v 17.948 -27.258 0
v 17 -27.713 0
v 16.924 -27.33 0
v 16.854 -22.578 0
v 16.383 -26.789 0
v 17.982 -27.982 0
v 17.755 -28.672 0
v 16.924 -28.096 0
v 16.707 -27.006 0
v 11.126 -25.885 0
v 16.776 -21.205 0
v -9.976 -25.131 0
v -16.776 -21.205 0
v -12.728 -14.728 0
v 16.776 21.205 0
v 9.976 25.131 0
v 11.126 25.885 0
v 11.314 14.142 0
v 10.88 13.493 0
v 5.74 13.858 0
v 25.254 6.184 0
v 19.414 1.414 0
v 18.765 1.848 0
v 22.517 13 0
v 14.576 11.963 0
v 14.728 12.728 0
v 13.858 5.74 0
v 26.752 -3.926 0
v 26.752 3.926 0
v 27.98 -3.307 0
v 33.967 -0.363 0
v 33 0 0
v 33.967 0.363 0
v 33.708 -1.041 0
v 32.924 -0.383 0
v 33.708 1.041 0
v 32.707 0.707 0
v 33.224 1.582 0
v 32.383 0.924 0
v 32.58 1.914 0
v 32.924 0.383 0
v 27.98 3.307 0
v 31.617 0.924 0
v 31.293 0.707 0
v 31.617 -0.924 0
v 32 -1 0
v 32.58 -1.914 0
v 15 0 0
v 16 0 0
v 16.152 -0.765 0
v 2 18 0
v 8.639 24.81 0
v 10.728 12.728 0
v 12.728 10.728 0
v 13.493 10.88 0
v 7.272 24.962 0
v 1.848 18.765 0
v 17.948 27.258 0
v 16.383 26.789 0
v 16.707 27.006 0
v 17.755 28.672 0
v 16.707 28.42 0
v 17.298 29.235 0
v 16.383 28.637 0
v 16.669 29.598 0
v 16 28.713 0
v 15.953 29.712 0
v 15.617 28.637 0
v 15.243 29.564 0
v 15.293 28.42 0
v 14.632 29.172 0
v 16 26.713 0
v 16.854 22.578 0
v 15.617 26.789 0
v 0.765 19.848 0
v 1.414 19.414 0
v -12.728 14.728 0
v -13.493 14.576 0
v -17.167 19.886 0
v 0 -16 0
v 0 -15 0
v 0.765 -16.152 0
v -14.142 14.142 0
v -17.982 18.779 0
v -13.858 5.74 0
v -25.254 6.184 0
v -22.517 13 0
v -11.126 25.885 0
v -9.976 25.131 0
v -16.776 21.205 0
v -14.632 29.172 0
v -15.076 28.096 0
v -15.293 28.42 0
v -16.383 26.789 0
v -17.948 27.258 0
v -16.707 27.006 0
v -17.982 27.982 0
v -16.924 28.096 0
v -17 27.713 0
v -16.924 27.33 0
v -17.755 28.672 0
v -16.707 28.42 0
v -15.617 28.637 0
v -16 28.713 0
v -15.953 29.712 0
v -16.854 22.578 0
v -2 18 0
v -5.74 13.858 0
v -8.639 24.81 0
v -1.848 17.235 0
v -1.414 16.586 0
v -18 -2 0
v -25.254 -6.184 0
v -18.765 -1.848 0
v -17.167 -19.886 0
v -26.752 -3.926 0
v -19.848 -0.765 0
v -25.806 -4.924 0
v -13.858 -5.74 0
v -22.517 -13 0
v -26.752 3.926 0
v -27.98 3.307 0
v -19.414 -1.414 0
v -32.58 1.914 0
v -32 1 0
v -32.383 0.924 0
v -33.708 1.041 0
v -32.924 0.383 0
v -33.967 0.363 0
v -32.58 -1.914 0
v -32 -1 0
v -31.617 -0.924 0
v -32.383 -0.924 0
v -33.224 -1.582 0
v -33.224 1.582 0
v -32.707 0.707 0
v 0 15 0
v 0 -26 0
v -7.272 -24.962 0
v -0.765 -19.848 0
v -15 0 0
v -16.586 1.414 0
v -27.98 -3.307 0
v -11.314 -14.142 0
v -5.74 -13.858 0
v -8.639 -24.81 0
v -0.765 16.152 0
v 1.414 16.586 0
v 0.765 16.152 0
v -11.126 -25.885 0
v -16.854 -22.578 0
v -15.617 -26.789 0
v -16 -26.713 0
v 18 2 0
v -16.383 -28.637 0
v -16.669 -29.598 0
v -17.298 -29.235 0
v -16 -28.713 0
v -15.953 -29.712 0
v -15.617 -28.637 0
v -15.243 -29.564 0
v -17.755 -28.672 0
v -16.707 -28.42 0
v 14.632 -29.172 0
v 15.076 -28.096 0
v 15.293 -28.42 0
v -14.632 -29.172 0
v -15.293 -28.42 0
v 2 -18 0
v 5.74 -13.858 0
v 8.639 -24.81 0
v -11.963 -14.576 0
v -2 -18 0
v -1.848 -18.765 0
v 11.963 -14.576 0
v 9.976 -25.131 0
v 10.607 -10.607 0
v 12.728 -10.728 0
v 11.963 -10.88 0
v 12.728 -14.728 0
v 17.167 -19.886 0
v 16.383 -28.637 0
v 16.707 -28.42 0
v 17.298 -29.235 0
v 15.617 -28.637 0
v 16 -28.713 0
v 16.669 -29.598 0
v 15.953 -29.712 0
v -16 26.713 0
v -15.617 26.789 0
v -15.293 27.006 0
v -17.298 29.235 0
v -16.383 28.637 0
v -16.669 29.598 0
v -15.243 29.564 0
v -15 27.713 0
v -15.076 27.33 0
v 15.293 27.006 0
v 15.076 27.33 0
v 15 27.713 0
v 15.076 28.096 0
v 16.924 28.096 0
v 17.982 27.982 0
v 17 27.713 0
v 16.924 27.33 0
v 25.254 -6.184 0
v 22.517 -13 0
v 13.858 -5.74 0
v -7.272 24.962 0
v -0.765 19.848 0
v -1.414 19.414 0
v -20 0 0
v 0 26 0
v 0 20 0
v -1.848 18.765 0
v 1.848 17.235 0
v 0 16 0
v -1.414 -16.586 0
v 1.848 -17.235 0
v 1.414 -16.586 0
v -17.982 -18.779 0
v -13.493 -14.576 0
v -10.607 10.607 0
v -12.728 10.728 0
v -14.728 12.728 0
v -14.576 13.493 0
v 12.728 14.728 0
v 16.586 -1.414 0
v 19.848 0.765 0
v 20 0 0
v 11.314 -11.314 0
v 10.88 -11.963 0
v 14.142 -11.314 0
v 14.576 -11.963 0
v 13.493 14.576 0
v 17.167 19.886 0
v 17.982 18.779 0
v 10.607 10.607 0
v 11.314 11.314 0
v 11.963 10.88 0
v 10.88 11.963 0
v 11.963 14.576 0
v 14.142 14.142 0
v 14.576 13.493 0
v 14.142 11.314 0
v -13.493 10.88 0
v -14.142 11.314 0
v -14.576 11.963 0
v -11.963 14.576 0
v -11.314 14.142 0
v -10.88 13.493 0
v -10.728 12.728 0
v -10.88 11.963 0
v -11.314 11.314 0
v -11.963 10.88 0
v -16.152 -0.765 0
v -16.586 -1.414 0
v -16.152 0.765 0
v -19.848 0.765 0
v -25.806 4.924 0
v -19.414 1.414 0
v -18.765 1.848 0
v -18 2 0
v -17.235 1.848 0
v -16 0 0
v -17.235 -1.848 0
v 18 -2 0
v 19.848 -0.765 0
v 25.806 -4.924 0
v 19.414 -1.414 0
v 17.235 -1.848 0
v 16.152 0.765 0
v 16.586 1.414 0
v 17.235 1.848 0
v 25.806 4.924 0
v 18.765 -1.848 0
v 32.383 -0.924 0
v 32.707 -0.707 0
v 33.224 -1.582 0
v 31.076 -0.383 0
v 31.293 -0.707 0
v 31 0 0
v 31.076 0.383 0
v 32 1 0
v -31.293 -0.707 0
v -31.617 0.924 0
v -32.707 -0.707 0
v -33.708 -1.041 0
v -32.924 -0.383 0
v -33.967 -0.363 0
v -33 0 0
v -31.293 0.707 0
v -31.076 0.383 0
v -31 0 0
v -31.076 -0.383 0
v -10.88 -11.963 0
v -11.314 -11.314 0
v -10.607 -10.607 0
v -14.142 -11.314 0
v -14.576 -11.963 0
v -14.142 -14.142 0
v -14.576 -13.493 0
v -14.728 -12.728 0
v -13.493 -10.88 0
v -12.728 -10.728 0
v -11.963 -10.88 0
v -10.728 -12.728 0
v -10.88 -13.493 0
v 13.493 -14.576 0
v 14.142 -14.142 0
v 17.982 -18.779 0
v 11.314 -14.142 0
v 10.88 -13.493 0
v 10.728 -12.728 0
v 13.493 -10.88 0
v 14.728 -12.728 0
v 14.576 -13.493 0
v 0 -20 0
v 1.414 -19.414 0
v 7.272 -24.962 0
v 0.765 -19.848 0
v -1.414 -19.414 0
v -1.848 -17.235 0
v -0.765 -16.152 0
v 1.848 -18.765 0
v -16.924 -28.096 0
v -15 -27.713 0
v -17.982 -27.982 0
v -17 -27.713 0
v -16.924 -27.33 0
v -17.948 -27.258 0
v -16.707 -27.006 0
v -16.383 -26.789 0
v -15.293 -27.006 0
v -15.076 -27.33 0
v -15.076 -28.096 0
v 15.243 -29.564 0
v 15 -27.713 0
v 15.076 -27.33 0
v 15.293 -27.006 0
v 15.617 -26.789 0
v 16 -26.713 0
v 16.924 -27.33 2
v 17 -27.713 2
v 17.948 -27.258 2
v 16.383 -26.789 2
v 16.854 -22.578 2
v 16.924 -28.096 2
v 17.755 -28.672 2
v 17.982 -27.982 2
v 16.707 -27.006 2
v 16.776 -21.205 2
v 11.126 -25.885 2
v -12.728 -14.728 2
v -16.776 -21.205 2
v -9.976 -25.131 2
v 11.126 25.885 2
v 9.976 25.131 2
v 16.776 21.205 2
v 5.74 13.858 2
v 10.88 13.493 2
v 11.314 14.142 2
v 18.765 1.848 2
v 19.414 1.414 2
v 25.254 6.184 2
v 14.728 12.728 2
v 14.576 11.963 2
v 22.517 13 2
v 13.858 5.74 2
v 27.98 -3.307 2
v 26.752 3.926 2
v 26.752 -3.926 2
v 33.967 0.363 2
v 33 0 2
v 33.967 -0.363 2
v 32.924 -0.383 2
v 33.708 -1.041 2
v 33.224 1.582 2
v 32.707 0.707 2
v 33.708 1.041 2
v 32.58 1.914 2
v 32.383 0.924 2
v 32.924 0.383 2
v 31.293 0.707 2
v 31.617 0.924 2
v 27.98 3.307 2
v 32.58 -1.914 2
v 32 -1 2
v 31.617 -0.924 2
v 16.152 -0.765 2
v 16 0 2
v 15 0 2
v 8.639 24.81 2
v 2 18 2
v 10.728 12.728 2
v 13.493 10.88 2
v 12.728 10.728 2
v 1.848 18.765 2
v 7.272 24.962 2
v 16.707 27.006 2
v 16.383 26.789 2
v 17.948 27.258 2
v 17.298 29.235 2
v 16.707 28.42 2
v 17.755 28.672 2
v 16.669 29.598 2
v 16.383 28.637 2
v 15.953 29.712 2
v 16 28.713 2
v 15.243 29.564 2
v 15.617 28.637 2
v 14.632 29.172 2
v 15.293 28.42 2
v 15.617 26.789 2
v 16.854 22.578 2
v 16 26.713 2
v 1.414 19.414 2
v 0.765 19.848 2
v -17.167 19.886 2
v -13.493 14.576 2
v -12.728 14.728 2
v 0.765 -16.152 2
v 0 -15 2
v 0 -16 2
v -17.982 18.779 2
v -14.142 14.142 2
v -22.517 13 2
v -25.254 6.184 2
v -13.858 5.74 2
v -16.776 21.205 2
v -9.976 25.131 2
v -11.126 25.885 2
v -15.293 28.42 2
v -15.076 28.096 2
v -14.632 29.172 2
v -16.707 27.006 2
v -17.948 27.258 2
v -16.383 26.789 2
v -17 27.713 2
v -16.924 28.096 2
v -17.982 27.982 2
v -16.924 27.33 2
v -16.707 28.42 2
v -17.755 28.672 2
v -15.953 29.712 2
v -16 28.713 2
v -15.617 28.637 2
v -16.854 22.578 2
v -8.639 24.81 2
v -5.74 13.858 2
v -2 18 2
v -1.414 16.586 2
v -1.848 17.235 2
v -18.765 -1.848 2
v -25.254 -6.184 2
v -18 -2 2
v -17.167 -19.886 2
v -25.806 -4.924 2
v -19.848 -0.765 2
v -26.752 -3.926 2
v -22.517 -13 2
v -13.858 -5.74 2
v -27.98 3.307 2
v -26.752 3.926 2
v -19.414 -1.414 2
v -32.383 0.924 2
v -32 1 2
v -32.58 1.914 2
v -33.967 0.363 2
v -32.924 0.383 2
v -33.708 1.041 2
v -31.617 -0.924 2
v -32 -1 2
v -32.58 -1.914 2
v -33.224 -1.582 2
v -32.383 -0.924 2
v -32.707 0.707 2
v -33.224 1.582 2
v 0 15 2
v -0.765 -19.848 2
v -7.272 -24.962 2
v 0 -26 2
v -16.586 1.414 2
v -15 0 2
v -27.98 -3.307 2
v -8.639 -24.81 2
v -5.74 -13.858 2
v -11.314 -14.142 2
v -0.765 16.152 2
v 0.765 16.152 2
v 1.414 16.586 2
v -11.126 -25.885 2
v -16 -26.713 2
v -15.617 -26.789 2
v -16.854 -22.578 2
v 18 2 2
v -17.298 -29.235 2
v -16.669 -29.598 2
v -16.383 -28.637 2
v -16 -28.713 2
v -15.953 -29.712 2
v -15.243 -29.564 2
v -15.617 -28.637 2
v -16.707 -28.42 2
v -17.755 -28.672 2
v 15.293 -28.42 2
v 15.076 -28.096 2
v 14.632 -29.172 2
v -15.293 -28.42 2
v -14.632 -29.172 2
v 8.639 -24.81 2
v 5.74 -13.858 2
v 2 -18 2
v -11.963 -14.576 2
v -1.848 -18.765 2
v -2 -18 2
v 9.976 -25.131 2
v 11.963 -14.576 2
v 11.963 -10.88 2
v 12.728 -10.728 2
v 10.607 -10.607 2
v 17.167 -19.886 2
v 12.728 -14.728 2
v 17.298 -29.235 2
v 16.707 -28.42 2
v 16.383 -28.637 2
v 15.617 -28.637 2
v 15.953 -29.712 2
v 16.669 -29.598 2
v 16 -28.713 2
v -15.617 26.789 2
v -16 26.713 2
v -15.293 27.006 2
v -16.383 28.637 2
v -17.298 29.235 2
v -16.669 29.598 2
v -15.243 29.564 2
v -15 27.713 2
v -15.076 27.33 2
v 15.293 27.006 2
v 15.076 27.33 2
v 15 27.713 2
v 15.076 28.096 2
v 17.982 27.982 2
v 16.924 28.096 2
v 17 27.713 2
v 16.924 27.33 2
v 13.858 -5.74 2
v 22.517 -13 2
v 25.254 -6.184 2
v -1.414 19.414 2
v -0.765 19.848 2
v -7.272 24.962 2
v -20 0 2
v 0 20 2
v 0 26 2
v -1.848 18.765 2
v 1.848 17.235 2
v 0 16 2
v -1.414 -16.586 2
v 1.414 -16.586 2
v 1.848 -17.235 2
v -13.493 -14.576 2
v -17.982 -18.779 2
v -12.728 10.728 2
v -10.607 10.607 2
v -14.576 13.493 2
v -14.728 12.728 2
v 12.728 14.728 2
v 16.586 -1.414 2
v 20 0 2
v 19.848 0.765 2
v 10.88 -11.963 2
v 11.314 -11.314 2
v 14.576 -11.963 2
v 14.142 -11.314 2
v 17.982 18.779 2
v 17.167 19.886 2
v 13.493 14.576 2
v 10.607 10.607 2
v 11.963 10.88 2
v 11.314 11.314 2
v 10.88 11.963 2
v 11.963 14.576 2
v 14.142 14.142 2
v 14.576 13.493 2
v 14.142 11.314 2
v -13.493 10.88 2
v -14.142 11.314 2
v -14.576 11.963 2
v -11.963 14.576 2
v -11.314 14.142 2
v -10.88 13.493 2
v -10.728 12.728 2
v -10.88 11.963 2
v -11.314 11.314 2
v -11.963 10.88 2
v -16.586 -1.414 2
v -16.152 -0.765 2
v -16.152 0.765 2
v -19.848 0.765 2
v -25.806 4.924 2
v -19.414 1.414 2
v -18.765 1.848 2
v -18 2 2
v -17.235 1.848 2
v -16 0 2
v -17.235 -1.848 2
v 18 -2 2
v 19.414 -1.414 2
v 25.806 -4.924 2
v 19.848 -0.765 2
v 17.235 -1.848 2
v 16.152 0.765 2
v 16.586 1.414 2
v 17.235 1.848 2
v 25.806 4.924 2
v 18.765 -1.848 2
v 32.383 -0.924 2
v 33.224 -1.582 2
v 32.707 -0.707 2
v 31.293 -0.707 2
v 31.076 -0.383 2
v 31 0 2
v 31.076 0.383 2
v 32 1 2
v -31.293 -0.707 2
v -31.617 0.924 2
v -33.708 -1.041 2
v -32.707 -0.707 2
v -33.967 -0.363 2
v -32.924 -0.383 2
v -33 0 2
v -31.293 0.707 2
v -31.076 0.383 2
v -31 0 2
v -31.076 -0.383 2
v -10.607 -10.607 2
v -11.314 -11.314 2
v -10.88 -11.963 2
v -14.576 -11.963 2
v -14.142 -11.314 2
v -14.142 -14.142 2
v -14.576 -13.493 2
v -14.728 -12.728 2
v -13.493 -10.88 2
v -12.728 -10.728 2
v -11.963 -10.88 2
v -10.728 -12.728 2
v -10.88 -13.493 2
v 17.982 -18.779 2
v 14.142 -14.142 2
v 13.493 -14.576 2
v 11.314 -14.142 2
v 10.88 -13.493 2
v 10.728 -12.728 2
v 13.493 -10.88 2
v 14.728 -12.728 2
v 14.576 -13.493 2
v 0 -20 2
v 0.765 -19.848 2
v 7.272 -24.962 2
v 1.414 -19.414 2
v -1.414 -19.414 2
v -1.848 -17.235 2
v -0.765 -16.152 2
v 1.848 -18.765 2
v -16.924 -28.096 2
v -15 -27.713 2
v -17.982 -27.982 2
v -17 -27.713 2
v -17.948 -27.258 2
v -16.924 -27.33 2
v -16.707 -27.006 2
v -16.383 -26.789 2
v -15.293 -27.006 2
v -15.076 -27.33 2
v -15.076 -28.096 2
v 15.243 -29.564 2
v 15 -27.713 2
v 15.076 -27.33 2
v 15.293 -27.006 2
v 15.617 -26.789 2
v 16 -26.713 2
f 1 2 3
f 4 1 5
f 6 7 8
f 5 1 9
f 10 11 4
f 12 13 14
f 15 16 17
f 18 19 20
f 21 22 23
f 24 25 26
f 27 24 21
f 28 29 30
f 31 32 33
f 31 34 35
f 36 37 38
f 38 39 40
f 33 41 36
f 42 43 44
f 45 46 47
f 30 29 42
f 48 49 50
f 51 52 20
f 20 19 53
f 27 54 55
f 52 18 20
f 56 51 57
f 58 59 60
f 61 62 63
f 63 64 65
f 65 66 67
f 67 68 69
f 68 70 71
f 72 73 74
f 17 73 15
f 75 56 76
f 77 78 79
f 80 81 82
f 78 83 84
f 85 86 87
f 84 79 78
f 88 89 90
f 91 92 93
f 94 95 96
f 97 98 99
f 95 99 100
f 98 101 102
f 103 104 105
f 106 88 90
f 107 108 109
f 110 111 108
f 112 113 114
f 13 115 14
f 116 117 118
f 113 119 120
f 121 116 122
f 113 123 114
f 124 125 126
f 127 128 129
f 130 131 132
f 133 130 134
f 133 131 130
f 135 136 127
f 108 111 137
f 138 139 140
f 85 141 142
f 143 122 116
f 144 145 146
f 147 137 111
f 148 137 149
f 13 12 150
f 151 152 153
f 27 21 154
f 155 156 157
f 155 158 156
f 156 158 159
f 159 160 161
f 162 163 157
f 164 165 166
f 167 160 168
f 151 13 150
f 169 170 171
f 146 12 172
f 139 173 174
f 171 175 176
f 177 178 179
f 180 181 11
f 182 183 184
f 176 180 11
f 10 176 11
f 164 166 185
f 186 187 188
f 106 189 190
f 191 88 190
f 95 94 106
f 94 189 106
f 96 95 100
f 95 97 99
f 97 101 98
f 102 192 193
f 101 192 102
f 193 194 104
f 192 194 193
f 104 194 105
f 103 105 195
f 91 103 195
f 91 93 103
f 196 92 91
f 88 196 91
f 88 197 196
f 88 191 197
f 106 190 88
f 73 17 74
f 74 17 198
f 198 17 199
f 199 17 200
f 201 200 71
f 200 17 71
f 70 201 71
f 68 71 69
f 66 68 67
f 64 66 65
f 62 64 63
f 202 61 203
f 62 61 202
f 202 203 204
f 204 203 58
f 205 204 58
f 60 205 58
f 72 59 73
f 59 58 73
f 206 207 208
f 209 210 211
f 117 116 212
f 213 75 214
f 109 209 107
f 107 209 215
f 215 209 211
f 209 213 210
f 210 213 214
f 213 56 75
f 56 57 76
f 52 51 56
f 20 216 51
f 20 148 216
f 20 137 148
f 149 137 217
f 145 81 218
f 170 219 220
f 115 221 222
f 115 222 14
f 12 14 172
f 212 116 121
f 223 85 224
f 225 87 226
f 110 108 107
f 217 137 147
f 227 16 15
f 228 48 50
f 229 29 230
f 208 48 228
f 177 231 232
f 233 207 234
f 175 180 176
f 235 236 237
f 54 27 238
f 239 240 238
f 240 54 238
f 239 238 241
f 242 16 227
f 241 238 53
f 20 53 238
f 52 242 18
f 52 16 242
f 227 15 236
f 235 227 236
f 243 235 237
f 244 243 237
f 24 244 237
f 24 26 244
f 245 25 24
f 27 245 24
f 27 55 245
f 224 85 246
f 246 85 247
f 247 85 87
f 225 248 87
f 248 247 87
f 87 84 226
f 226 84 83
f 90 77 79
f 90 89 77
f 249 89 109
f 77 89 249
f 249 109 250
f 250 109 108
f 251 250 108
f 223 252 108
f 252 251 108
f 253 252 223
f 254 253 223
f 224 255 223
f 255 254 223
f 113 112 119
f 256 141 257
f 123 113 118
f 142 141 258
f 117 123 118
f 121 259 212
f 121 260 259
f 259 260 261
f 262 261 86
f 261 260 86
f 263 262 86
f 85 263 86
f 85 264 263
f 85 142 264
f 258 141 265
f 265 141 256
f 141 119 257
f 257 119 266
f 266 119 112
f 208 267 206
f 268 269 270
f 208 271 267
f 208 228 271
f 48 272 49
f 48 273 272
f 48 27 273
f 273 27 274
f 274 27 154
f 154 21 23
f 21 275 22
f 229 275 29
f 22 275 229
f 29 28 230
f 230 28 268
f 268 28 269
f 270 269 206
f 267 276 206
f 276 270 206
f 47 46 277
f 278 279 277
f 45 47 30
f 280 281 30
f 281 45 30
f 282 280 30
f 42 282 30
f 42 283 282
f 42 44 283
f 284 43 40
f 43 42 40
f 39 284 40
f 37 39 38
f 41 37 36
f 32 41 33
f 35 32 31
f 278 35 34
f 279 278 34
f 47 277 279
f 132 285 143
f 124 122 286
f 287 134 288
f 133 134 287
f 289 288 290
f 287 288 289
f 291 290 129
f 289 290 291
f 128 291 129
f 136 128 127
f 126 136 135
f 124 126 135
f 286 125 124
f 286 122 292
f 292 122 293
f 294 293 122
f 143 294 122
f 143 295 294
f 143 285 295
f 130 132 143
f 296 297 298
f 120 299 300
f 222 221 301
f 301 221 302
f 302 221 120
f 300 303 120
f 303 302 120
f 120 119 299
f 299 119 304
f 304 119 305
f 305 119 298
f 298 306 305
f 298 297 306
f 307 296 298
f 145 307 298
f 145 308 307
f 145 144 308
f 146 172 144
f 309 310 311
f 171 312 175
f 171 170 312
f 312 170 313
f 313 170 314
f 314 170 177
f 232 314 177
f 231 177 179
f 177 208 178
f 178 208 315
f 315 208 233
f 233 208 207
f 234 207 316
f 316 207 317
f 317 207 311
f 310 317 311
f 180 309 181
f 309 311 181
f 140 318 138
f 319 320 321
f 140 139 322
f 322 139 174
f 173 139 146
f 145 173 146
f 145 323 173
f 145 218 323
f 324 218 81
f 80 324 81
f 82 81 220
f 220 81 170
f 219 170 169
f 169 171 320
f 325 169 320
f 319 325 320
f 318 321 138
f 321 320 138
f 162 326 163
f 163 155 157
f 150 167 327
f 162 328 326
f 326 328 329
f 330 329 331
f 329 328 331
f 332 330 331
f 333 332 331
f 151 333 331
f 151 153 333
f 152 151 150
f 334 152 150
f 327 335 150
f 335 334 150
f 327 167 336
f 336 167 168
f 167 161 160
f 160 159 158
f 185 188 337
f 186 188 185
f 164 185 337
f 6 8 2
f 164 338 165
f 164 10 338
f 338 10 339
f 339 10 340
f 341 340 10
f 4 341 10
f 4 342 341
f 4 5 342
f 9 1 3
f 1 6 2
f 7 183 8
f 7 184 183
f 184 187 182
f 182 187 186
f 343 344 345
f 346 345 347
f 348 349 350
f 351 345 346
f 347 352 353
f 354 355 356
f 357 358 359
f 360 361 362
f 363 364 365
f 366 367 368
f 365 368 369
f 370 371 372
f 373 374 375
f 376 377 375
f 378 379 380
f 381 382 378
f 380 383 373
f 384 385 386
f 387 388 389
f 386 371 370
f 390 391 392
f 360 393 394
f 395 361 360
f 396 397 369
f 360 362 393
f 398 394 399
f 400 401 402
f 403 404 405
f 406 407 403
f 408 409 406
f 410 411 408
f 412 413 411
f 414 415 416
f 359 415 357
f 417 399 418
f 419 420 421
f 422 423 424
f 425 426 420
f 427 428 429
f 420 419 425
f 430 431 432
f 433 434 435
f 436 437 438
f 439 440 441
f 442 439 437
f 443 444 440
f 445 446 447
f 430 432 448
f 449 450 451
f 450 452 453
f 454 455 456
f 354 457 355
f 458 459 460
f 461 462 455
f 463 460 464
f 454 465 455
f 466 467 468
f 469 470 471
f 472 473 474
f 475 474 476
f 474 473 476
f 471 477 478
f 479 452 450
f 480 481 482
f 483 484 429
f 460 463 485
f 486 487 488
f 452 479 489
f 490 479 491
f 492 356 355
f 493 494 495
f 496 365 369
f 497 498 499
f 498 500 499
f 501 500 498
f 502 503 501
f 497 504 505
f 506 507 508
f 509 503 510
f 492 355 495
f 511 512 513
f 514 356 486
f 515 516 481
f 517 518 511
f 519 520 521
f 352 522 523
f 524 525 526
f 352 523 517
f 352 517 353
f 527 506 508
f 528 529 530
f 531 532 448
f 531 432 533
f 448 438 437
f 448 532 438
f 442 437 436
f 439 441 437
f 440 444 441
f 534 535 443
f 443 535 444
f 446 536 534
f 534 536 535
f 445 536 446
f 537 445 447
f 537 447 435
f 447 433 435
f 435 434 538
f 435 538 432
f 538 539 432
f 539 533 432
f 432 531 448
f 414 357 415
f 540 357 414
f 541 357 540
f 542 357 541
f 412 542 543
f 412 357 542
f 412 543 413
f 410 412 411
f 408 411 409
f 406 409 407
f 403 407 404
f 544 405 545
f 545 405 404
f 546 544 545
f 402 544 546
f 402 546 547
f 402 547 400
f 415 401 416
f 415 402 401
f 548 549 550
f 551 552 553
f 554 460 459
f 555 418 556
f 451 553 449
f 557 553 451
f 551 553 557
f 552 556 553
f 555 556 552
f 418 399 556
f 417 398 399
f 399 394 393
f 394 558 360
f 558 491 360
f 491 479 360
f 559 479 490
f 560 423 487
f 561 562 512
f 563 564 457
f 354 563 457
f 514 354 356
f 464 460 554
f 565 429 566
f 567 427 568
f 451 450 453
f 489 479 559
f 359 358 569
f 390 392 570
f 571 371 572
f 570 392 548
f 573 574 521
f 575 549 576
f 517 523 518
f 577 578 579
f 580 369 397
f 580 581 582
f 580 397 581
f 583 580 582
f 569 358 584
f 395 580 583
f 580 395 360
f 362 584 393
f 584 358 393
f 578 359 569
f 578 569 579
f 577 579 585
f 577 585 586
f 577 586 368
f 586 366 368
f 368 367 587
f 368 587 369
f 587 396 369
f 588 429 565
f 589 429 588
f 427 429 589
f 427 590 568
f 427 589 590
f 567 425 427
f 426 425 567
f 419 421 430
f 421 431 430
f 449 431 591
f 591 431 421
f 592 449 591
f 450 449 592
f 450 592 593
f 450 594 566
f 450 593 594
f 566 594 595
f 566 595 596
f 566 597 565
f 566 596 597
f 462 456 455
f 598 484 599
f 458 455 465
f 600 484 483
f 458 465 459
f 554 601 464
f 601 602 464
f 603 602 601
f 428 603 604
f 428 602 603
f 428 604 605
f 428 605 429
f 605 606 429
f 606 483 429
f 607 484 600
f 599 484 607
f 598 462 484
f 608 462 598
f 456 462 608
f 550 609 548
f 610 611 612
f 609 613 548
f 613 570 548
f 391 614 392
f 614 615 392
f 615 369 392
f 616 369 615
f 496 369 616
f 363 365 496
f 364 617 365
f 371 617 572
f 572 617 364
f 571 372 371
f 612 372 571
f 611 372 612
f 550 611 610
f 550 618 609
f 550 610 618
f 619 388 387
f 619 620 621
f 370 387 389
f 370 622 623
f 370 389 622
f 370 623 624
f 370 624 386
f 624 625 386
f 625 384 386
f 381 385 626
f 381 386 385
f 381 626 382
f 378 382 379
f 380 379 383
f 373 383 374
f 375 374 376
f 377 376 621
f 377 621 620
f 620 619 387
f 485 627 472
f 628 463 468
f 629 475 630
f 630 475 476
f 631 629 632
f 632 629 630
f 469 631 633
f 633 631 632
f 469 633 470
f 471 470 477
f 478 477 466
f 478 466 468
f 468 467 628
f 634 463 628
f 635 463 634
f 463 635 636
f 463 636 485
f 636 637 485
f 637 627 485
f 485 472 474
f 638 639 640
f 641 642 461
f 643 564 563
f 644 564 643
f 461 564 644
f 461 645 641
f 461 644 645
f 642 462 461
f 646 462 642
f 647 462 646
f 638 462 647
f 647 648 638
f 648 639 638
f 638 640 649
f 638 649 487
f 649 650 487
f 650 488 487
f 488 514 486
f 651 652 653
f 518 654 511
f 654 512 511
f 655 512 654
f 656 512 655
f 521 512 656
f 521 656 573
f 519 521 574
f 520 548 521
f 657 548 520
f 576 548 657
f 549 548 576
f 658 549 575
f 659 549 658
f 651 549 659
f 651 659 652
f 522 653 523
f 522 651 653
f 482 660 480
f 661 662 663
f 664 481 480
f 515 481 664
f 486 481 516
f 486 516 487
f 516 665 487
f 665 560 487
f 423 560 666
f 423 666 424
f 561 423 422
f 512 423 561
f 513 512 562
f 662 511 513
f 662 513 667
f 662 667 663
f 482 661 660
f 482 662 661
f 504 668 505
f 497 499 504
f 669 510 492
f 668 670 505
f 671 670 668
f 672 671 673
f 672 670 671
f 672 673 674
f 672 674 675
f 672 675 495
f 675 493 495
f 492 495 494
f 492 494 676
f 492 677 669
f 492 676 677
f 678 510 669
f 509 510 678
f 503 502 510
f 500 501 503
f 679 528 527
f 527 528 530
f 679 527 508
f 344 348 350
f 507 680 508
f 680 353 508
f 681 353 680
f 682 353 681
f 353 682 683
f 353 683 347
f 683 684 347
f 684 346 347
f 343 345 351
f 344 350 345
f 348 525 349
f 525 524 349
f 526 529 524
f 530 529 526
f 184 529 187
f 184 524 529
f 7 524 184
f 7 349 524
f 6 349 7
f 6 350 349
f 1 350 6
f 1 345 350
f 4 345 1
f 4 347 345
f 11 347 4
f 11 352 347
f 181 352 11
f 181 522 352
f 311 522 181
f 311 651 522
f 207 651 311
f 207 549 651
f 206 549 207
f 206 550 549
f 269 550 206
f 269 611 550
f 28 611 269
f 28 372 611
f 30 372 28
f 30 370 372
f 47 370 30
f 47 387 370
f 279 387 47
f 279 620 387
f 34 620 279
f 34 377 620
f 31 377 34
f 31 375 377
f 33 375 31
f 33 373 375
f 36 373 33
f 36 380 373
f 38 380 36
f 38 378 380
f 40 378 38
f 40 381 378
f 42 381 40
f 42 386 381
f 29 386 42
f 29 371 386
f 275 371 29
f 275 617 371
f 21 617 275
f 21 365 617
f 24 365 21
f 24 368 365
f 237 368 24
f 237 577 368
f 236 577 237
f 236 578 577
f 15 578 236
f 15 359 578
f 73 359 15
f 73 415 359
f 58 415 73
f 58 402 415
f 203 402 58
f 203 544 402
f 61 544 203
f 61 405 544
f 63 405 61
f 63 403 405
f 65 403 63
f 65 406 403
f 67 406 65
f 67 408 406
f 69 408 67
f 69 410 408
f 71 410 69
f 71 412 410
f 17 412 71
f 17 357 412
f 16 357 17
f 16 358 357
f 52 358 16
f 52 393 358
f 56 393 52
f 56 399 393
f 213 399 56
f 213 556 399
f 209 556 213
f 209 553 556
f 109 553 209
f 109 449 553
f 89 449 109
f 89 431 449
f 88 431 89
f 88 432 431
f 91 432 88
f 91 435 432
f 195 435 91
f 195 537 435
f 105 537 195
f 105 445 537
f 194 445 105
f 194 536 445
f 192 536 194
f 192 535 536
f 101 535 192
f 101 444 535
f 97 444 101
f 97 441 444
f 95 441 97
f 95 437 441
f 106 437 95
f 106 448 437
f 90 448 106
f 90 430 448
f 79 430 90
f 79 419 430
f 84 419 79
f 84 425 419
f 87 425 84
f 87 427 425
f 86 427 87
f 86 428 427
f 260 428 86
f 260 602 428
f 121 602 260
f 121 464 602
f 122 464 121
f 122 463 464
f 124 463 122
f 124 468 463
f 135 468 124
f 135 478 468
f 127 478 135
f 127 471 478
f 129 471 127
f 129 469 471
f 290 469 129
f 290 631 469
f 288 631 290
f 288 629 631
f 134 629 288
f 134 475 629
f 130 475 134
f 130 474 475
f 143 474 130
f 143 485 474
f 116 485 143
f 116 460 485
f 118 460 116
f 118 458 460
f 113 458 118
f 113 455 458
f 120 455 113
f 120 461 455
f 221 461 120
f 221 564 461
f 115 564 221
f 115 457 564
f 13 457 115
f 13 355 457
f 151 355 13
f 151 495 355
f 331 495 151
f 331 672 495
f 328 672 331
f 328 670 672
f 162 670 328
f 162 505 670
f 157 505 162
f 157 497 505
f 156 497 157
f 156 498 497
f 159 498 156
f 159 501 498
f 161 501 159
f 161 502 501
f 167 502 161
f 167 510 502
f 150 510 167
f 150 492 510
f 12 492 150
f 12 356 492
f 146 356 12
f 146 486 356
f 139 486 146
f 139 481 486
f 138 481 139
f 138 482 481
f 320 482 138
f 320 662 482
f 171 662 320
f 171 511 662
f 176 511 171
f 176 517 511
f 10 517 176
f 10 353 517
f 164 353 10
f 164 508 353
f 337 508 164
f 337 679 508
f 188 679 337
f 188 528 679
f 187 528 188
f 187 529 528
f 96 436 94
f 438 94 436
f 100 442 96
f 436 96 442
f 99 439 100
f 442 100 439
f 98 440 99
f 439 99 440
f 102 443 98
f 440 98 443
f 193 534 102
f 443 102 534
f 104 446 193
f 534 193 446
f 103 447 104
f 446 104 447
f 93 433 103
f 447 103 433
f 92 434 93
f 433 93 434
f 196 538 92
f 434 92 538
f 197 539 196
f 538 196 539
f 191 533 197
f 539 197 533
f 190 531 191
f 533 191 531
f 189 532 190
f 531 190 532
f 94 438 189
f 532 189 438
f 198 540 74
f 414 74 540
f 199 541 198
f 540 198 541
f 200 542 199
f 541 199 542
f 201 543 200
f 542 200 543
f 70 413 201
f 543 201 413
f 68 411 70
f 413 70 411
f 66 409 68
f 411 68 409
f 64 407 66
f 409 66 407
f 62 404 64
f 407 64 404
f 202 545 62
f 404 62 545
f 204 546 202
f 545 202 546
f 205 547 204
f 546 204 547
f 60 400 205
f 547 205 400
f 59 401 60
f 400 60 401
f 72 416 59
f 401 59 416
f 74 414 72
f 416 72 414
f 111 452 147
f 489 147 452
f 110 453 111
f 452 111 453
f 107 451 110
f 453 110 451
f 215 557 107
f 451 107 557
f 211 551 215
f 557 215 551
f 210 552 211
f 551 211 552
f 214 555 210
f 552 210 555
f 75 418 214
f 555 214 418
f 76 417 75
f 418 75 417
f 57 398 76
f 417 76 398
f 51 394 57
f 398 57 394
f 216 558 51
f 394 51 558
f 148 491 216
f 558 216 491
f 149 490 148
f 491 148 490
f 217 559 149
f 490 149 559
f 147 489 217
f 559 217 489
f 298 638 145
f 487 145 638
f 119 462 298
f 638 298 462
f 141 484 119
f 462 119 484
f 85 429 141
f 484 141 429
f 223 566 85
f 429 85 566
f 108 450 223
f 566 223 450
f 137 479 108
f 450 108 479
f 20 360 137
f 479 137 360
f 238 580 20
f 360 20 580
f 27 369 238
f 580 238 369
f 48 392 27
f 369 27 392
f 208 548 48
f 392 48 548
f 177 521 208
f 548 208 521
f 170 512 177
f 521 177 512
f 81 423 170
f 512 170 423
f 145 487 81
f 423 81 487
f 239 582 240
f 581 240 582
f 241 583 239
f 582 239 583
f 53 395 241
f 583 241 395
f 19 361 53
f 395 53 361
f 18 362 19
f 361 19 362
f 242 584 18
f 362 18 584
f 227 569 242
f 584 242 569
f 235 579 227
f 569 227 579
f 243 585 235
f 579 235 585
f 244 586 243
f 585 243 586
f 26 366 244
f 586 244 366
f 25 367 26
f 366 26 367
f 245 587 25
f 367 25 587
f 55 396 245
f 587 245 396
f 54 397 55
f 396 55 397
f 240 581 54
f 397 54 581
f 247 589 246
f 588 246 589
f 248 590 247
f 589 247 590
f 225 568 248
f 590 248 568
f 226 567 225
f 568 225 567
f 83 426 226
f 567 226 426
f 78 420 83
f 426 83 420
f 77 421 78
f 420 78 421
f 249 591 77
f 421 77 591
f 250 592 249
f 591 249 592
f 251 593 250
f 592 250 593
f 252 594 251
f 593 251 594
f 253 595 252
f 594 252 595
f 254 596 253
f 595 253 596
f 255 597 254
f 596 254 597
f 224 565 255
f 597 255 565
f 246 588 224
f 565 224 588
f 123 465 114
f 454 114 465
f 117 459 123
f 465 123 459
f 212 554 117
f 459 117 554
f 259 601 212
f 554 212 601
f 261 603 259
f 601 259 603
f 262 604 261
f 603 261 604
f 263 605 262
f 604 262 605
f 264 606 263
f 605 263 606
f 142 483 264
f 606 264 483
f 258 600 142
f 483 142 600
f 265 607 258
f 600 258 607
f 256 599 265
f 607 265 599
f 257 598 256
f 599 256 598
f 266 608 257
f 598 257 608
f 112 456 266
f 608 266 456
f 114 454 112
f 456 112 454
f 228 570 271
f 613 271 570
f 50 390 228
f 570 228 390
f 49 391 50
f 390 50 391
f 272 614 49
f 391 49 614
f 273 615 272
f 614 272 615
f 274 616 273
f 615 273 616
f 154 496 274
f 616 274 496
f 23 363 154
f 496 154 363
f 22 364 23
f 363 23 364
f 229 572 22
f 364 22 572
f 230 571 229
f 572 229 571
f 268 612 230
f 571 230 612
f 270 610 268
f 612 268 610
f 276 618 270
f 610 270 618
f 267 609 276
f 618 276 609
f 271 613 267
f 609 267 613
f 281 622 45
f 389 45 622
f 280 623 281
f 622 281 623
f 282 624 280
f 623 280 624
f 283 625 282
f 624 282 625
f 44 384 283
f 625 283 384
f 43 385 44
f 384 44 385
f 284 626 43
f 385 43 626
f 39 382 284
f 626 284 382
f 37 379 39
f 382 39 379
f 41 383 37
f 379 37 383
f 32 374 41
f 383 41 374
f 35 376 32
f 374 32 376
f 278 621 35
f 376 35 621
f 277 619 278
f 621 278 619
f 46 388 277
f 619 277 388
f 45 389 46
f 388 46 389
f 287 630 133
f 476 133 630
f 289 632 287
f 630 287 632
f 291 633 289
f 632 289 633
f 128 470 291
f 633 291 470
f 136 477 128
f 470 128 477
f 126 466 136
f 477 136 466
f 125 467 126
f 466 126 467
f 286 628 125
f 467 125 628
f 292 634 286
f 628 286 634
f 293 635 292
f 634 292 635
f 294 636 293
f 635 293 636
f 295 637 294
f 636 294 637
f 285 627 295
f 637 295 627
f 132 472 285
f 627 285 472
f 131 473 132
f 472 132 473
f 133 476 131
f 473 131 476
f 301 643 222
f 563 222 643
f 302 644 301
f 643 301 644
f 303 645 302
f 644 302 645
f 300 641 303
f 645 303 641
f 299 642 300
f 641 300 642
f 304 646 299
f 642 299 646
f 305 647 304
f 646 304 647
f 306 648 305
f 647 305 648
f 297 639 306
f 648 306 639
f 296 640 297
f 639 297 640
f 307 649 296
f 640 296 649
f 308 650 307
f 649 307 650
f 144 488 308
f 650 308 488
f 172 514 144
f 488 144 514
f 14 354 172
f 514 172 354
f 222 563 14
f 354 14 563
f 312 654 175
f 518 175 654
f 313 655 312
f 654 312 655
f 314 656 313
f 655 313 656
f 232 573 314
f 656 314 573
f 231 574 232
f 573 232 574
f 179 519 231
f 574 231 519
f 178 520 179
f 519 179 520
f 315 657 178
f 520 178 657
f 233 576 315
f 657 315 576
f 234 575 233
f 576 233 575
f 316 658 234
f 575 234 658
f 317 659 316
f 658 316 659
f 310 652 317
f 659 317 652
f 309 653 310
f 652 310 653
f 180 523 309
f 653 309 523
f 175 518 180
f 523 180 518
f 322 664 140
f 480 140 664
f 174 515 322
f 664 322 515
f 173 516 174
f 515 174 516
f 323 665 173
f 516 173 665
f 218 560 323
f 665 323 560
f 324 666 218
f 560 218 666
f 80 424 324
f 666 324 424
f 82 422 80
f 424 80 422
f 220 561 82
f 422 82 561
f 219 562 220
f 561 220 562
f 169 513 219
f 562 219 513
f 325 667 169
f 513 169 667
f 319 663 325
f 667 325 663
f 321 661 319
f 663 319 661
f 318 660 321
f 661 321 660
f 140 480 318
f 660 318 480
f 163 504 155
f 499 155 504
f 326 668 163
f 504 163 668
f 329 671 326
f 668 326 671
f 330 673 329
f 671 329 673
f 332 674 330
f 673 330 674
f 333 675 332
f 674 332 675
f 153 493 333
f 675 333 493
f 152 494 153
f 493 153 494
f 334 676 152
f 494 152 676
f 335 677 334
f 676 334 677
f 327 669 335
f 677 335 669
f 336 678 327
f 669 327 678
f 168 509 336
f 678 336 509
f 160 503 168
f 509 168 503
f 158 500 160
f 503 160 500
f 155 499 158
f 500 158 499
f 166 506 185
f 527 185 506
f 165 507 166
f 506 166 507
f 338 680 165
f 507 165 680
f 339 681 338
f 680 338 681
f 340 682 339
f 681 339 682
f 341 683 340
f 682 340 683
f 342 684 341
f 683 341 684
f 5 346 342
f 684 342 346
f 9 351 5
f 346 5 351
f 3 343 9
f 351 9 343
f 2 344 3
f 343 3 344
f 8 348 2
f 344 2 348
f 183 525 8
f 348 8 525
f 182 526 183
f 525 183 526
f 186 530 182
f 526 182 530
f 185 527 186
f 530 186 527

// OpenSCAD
// Generated by Parametrix
ca_ring_guidance_faceTop_0 = [ [ 27.9800, -3.3068 ],[ 32.5796, -1.9142 ],[ 33.2243, -1.5815 ],[ 33.7080, -1.0406 ],[ 33.9668, -0.3628 ],[ 33.9668, 0.3628 ],[ 33.7080, 1.0406 ],[ 33.2243, 1.5815 ],[ 32.5796, 1.9142 ],[ 27.9800, 3.3068 ],[ 26.7518, 3.9257 ],[ 25.8058, 4.9241 ],[ 25.2539, 6.1838 ],[ 22.5167, 13.0000 ],[ 17.9823, 18.7786 ],[ 17.1673, 19.8865 ],[ 16.7757, 21.2049 ],[ 16.8538, 22.5780 ],[ 17.9475, 27.2576 ],[ 17.9817, 27.9824 ],[ 17.7552, 28.6717 ],[ 17.2976, 29.2347 ],[ 16.6692, 29.5975 ],[ 15.9528, 29.7123 ],[ 15.2426, 29.5638 ],[ 14.6320, 29.1718 ],[ 11.1262, 25.8848 ],[ 9.9761, 25.1306 ],[ 8.6386, 24.8105 ],[ 7.2716, 24.9624 ],[ 0.0000, 26.0000 ],[ -7.2716, 24.9624 ],[ -8.6386, 24.8105 ],[ -9.9761, 25.1306 ],[ -11.1262, 25.8848 ],[ -14.6320, 29.1718 ],[ -15.2426, 29.5638 ],[ -15.9528, 29.7123 ],[ -16.6692, 29.5975 ],[ -17.2976, 29.2347 ],[ -17.7552, 28.6717 ],[ -17.9817, 27.9824 ],[ -17.9475, 27.2576 ],[ -16.8538, 22.5780 ],[ -16.7757, 21.2049 ],[ -17.1673, 19.8865 ],[ -17.9823, 18.7786 ],[ -22.5167, 13.0000 ],[ -25.2539, 6.1838 ],[ -25.8058, 4.9241 ],[ -26.7518, 3.9257 ],[ -27.9800, 3.3068 ],[ -32.5796, 1.9142 ],[ -33.2243, 1.5815 ],[ -33.7080, 1.0406 ],[ -33.9668, 0.3628 ],[ -33.9668, -0.3628 ],[ -33.7080, -1.0406 ],[ -33.2243, -1.5815 ],[ -32.5796, -1.9142 ],[ -27.9800, -3.3068 ],[ -26.7518, -3.9257 ],[ -25.8058, -4.9241 ],[ -25.2539, -6.1838 ],[ -22.5167, -13.0000 ],[ -17.9823, -18.7786 ],[ -17.1673, -19.8865 ],[ -16.7757, -21.2049 ],[ -16.8538, -22.5780 ],[ -17.9475, -27.2576 ],[ -17.9817, -27.9824 ],[ -17.7552, -28.6717 ],[ -17.2976, -29.2347 ],[ -16.6692, -29.5975 ],[ -15.9528, -29.7123 ],[ -15.2426, -29.5638 ],[ -14.6320, -29.1718 ],[ -11.1262, -25.8848 ],[ -9.9761, -25.1306 ],[ -8.6386, -24.8105 ],[ -7.2716, -24.9624 ],[ -0.0000, -26.0000 ],[ 7.2716, -24.9624 ],[ 8.6386, -24.8105 ],[ 9.9761, -25.1306 ],[ 11.1262, -25.8848 ],[ 14.6320, -29.1718 ],[ 15.2426, -29.5638 ],[ 15.9528, -29.7123 ],[ 16.6692, -29.5975 ],[ 17.2976, -29.2347 ],[ 17.7552, -28.6717 ],[ 17.9817, -27.9824 ],[ 17.9475, -27.2576 ],[ 16.8538, -22.5780 ],[ 16.7757, -21.2049 ],[ 17.1673, -19.8865 ],[ 17.9823, -18.7786 ],[ 22.5167, -13.0000 ],[ 25.2539, -6.1838 ],[ 25.8058, -4.9241 ],[ 26.7518, -3.9257 ],[ 27.9800, -3.3068 ] ];
cb_ring_guidance_faceTop_0 = [  0, 1, 2, 3, 4, 5, 6, 7, 8, 9, 10, 11, 12, 13, 14, 15, 16, 17, 18, 19, 20, 21, 22, 23, 24, 25, 26, 27, 28, 29, 30, 31, 32, 33, 34, 35, 36, 37, 38, 39, 40, 41, 42, 43, 44, 45, 46, 47, 48, 49, 50, 51, 52, 53, 54, 55, 56, 57, 58, 59, 60, 61, 62, 63, 64, 65, 66, 67, 68, 69, 70, 71, 72, 73, 74, 75, 76, 77, 78, 79, 80, 81, 82, 83, 84, 85, 86, 87, 88, 89, 90, 91, 92, 93, 94, 95, 96, 97, 98, 99, 100, 101, 102 ];
ca_ring_guidance_faceTop_1 = [ [ 15.0000, 0.0000 ],[ 13.8582, 5.7403 ],[ 10.6066, 10.6066 ],[ 5.7403, 13.8582 ],[ 0.0000, 15.0000 ],[ -5.7403, 13.8582 ],[ -10.6066, 10.6066 ],[ -13.8582, 5.7403 ],[ -15.0000, 0.0000 ],[ -13.8582, -5.7403 ],[ -10.6066, -10.6066 ],[ -5.7403, -13.8582 ],[ -0.0000, -15.0000 ],[ 5.7403, -13.8582 ],[ 10.6066, -10.6066 ],[ 13.8582, -5.7403 ],[ 15.0000, 0.0000 ] ];
cb_ring_guidance_faceTop_1 = [  103, 104, 105, 106, 107, 108, 109, 110, 111, 112, 113, 114, 115, 116, 117, 118, 119 ];
ca_ring_guidance_faceTop_2 = [ [ 20.0000, 0.0000 ],[ 19.8478, 0.7654 ],[ 19.4142, 1.4142 ],[ 18.7654, 1.8478 ],[ 18.0000, 2.0000 ],[ 17.2346, 1.8478 ],[ 16.5858, 1.4142 ],[ 16.1522, 0.7654 ],[ 16.0000, 0.0000 ],[ 16.1522, -0.7654 ],[ 16.5858, -1.4142 ],[ 17.2346, -1.8478 ],[ 18.0000, -2.0000 ],[ 18.7654, -1.8478 ],[ 19.4142, -1.4142 ],[ 19.8478, -0.7654 ],[ 20.0000, 0.0000 ] ];
cb_ring_guidance_faceTop_2 = [  120, 121, 122, 123, 124, 125, 126, 127, 128, 129, 130, 131, 132, 133, 134, 135, 136 ];
ca_ring_guidance_faceTop_3 = [ [ 14.7279, 12.7279 ],[ 14.5757, 13.4933 ],[ 14.1421, 14.1421 ],[ 13.4933, 14.5757 ],[ 12.7279, 14.7279 ],[ 11.9626, 14.5757 ],[ 11.3137, 14.1421 ],[ 10.8802, 13.4933 ],[ 10.7279, 12.7279 ],[ 10.8802, 11.9626 ],[ 11.3137, 11.3137 ],[ 11.9626, 10.8802 ],[ 12.7279, 10.7279 ],[ 13.4933, 10.8802 ],[ 14.1421, 11.3137 ],[ 14.5757, 11.9626 ],[ 14.7279, 12.7279 ] ];
cb_ring_guidance_faceTop_3 = [  137, 138, 139, 140, 141, 142, 143, 144, 145, 146, 147, 148, 149, 150, 151, 152, 153 ];
ca_ring_guidance_faceTop_4 = [ [ 2.0000, 18.0000 ],[ 1.8478, 18.7654 ],[ 1.4142, 19.4142 ],[ 0.7654, 19.8478 ],[ 0.0000, 20.0000 ],[ -0.7654, 19.8478 ],[ -1.4142, 19.4142 ],[ -1.8478, 18.7654 ],[ -2.0000, 18.0000 ],[ -1.8478, 17.2346 ],[ -1.4142, 16.5858 ],[ -0.7654, 16.1522 ],[ 0.0000, 16.0000 ],[ 0.7654, 16.1522 ],[ 1.4142, 16.5858 ],[ 1.8478, 17.2346 ],[ 2.0000, 18.0000 ] ];
cb_ring_guidance_faceTop_4 = [  154, 155, 156, 157, 158, 159, 160, 161, 162, 163, 164, 165, 166, 167, 168, 169, 170 ];
ca_ring_guidance_faceTop_5 = [ [ -10.7279, 12.7279 ],[ -10.8802, 13.4933 ],[ -11.3137, 14.1421 ],[ -11.9626, 14.5757 ],[ -12.7279, 14.7279 ],[ -13.4933, 14.5757 ],[ -14.1421, 14.1421 ],[ -14.5757, 13.4933 ],[ -14.7279, 12.7279 ],[ -14.5757, 11.9626 ],[ -14.1421, 11.3137 ],[ -13.4933, 10.8802 ],[ -12.7279, 10.7279 ],[ -11.9626, 10.8802 ],[ -11.3137, 11.3137 ],[ -10.8802, 11.9626 ],[ -10.7279, 12.7279 ] ];
cb_ring_guidance_faceTop_5 = [  171, 172, 173, 174, 175, 176, 177, 178, 179, 180, 181, 182, 183, 184, 185, 186, 187 ];
ca_ring_guidance_faceTop_6 = [ [ -16.0000, 0.0000 ],[ -16.1522, 0.7654 ],[ -16.5858, 1.4142 ],[ -17.2346, 1.8478 ],[ -18.0000, 2.0000 ],[ -18.7654, 1.8478 ],[ -19.4142, 1.4142 ],[ -19.8478, 0.7654 ],[ -20.0000, 0.0000 ],[ -19.8478, -0.7654 ],[ -19.4142, -1.4142 ],[ -18.7654, -1.8478 ],[ -18.0000, -2.0000 ],[ -17.2346, -1.8478 ],[ -16.5858, -1.4142 ],[ -16.1522, -0.7654 ],[ -16.0000, 0.0000 ] ];
cb_ring_guidance_faceTop_6 = [  188, 189, 190, 191, 192, 193, 194, 195, 196, 197, 198, 199, 200, 201, 202, 203, 204 ];
ca_ring_guidance_faceTop_7 = [ [ -10.7279, -12.7279 ],[ -10.8802, -11.9626 ],[ -11.3137, -11.3137 ],[ -11.9626, -10.8802 ],[ -12.7279, -10.7279 ],[ -13.4933, -10.8802 ],[ -14.1421, -11.3137 ],[ -14.5757, -11.9626 ],[ -14.7279, -12.7279 ],[ -14.5757, -13.4933 ],[ -14.1421, -14.1421 ],[ -13.4933, -14.5757 ],[ -12.7279, -14.7279 ],[ -11.9626, -14.5757 ],[ -11.3137, -14.1421 ],[ -10.8802, -13.4933 ],[ -10.7279, -12.7279 ] ];
cb_ring_guidance_faceTop_7 = [  205, 206, 207, 208, 209, 210, 211, 212, 213, 214, 215, 216, 217, 218, 219, 220, 221 ];
ca_ring_guidance_faceTop_8 = [ [ 2.0000, -18.0000 ],[ 1.8478, -17.2346 ],[ 1.4142, -16.5858 ],[ 0.7654, -16.1522 ],[ -0.0000, -16.0000 ],[ -0.7654, -16.1522 ],[ -1.4142, -16.5858 ],[ -1.8478, -17.2346 ],[ -2.0000, -18.0000 ],[ -1.8478, -18.7654 ],[ -1.4142, -19.4142 ],[ -0.7654, -19.8478 ],[ -0.0000, -20.0000 ],[ 0.7654, -19.8478 ],[ 1.4142, -19.4142 ],[ 1.8478, -18.7654 ],[ 2.0000, -18.0000 ] ];
cb_ring_guidance_faceTop_8 = [  222, 223, 224, 225, 226, 227, 228, 229, 230, 231, 232, 233, 234, 235, 236, 237, 238 ];
ca_ring_guidance_faceTop_9 = [ [ 14.7279, -12.7279 ],[ 14.5757, -11.9626 ],[ 14.1421, -11.3137 ],[ 13.4933, -10.8802 ],[ 12.7279, -10.7279 ],[ 11.9626, -10.8802 ],[ 11.3137, -11.3137 ],[ 10.8802, -11.9626 ],[ 10.7279, -12.7279 ],[ 10.8802, -13.4933 ],[ 11.3137, -14.1421 ],[ 11.9626, -14.5757 ],[ 12.7279, -14.7279 ],[ 13.4933, -14.5757 ],[ 14.1421, -14.1421 ],[ 14.5757, -13.4933 ],[ 14.7279, -12.7279 ] ];
cb_ring_guidance_faceTop_9 = [  239, 240, 241, 242, 243, 244, 245, 246, 247, 248, 249, 250, 251, 252, 253, 254, 255 ];
ca_ring_guidance_faceTop_10 = [ [ 33.0000, 0.0000 ],[ 32.9239, 0.3827 ],[ 32.7071, 0.7071 ],[ 32.3827, 0.9239 ],[ 32.0000, 1.0000 ],[ 31.6173, 0.9239 ],[ 31.2929, 0.7071 ],[ 31.0761, 0.3827 ],[ 31.0000, 0.0000 ],[ 31.0761, -0.3827 ],[ 31.2929, -0.7071 ],[ 31.6173, -0.9239 ],[ 32.0000, -1.0000 ],[ 32.3827, -0.9239 ],[ 32.7071, -0.7071 ],[ 32.9239, -0.3827 ],[ 33.0000, 0.0000 ] ];
cb_ring_guidance_faceTop_10 = [  256, 257, 258, 259, 260, 261, 262, 263, 264, 265, 266, 267, 268, 269, 270, 271, 272 ];
ca_ring_guidance_faceTop_11 = [ [ 17.0000, 27.7128 ],[ 16.9239, 28.0955 ],[ 16.7071, 28.4199 ],[ 16.3827, 28.6367 ],[ 16.0000, 28.7128 ],[ 15.6173, 28.6367 ],[ 15.2929, 28.4199 ],[ 15.0761, 28.0955 ],[ 15.0000, 27.7128 ],[ 15.0761, 27.3301 ],[ 15.2929, 27.0057 ],[ 15.6173, 26.7889 ],[ 16.0000, 26.7128 ],[ 16.3827, 26.7889 ],[ 16.7071, 27.0057 ],[ 16.9239, 27.3301 ],[ 17.0000, 27.7128 ] ];
cb_ring_guidance_faceTop_11 = [  273, 274, 275, 276, 277, 278, 279, 280, 281, 282, 283, 284, 285, 286, 287, 288, 289 ];
ca_ring_guidance_faceTop_12 = [ [ -15.0000, 27.7128 ],[ -15.0761, 28.0955 ],[ -15.2929, 28.4199 ],[ -15.6173, 28.6367 ],[ -16.0000, 28.7128 ],[ -16.3827, 28.6367 ],[ -16.7071, 28.4199 ],[ -16.9239, 28.0955 ],[ -17.0000, 27.7128 ],[ -16.9239, 27.3301 ],[ -16.7071, 27.0057 ],[ -16.3827, 26.7889 ],[ -16.0000, 26.7128 ],[ -15.6173, 26.7889 ],[ -15.2929, 27.0057 ],[ -15.0761, 27.3301 ],[ -15.0000, 27.7128 ] ];
cb_ring_guidance_faceTop_12 = [  290, 291, 292, 293, 294, 295, 296, 297, 298, 299, 300, 301, 302, 303, 304, 305, 306 ];
ca_ring_guidance_faceTop_13 = [ [ -31.0000, 0.0000 ],[ -31.0761, 0.3827 ],[ -31.2929, 0.7071 ],[ -31.6173, 0.9239 ],[ -32.0000, 1.0000 ],[ -32.3827, 0.9239 ],[ -32.7071, 0.7071 ],[ -32.9239, 0.3827 ],[ -33.0000, 0.0000 ],[ -32.9239, -0.3827 ],[ -32.7071, -0.7071 ],[ -32.3827, -0.9239 ],[ -32.0000, -1.0000 ],[ -31.6173, -0.9239 ],[ -31.2929, -0.7071 ],[ -31.0761, -0.3827 ],[ -31.0000, 0.0000 ] ];
cb_ring_guidance_faceTop_13 = [  307, 308, 309, 310, 311, 312, 313, 314, 315, 316, 317, 318, 319, 320, 321, 322, 323 ];
ca_ring_guidance_faceTop_14 = [ [ -15.0000, -27.7128 ],[ -15.0761, -27.3301 ],[ -15.2929, -27.0057 ],[ -15.6173, -26.7889 ],[ -16.0000, -26.7128 ],[ -16.3827, -26.7889 ],[ -16.7071, -27.0057 ],[ -16.9239, -27.3301 ],[ -17.0000, -27.7128 ],[ -16.9239, -28.0955 ],[ -16.7071, -28.4199 ],[ -16.3827, -28.6367 ],[ -16.0000, -28.7128 ],[ -15.6173, -28.6367 ],[ -15.2929, -28.4199 ],[ -15.0761, -28.0955 ],[ -15.0000, -27.7128 ] ];
cb_ring_guidance_faceTop_14 = [  324, 325, 326, 327, 328, 329, 330, 331, 332, 333, 334, 335, 336, 337, 338, 339, 340 ];
ca_ring_guidance_faceTop_15 = [ [ 17.0000, -27.7128 ],[ 16.9239, -27.3301 ],[ 16.7071, -27.0057 ],[ 16.3827, -26.7889 ],[ 16.0000, -26.7128 ],[ 15.6173, -26.7889 ],[ 15.2929, -27.0057 ],[ 15.0761, -27.3301 ],[ 15.0000, -27.7128 ],[ 15.0761, -28.0955 ],[ 15.2929, -28.4199 ],[ 15.6173, -28.6367 ],[ 16.0000, -28.7128 ],[ 16.3827, -28.6367 ],[ 16.7071, -28.4199 ],[ 16.9239, -28.0955 ],[ 17.0000, -27.7128 ] ];
cb_ring_guidance_faceTop_15 = [  341, 342, 343, 344, 345, 346, 347, 348, 349, 350, 351, 352, 353, 354, 355, 356, 357 ];
a_ring_guidance_faceTop = concat(ca_ring_guidance_faceTop_0, ca_ring_guidance_faceTop_1, ca_ring_guidance_faceTop_2, ca_ring_guidance_faceTop_3, ca_ring_guidance_faceTop_4, ca_ring_guidance_faceTop_5, ca_ring_guidance_faceTop_6, ca_ring_guidance_faceTop_7, ca_ring_guidance_faceTop_8, ca_ring_guidance_faceTop_9, ca_ring_guidance_faceTop_10, ca_ring_guidance_faceTop_11, ca_ring_guidance_faceTop_12, ca_ring_guidance_faceTop_13, ca_ring_guidance_faceTop_14, ca_ring_guidance_faceTop_15);
b_ring_guidance_faceTop = [cb_ring_guidance_faceTop_0, cb_ring_guidance_faceTop_1, cb_ring_guidance_faceTop_2, cb_ring_guidance_faceTop_3, cb_ring_guidance_faceTop_4, cb_ring_guidance_faceTop_5, cb_ring_guidance_faceTop_6, cb_ring_guidance_faceTop_7, cb_ring_guidance_faceTop_8, cb_ring_guidance_faceTop_9, cb_ring_guidance_faceTop_10, cb_ring_guidance_faceTop_11, cb_ring_guidance_faceTop_12, cb_ring_guidance_faceTop_13, cb_ring_guidance_faceTop_14, cb_ring_guidance_faceTop_15];
ca_ring_guidance_faceSection_0 = [ [ 15.0000, 0.0000 ],[ 34.0000, 0.0000 ],[ 34.0000, 2.0000 ],[ 15.0000, 2.0000 ],[ 15.0000, 0.0000 ] ];
cb_ring_guidance_faceSection_0 = [  0, 1, 2, 3, 4 ];
ca_ring_guidance_faceSection_1 = [ [ -34.0000, 0.0000 ],[ -15.0000, 0.0000 ],[ -15.0000, 2.0000 ],[ -34.0000, 2.0000 ],[ -34.0000, 0.0000 ] ];
cb_ring_guidance_faceSection_1 = [  5, 6, 7, 8, 9 ];
a_ring_guidance_faceSection = concat(ca_ring_guidance_faceSection_0, ca_ring_guidance_faceSection_1);
b_ring_guidance_faceSection = [cb_ring_guidance_faceSection_0, cb_ring_guidance_faceSection_1];

module subpax_ring_guidance_top () {
	translate( [ 0, 0, 0 ])
		rotate( [ 0, 0, 0 ])
			   linear_extrude(height = 2) polygon(a_ring_guidance_faceTop, b_ring_guidance_faceTop);
}

module pax_ring_guidance () {
	subpax_ring_guidance_top();
}

pax_ring_guidance();
